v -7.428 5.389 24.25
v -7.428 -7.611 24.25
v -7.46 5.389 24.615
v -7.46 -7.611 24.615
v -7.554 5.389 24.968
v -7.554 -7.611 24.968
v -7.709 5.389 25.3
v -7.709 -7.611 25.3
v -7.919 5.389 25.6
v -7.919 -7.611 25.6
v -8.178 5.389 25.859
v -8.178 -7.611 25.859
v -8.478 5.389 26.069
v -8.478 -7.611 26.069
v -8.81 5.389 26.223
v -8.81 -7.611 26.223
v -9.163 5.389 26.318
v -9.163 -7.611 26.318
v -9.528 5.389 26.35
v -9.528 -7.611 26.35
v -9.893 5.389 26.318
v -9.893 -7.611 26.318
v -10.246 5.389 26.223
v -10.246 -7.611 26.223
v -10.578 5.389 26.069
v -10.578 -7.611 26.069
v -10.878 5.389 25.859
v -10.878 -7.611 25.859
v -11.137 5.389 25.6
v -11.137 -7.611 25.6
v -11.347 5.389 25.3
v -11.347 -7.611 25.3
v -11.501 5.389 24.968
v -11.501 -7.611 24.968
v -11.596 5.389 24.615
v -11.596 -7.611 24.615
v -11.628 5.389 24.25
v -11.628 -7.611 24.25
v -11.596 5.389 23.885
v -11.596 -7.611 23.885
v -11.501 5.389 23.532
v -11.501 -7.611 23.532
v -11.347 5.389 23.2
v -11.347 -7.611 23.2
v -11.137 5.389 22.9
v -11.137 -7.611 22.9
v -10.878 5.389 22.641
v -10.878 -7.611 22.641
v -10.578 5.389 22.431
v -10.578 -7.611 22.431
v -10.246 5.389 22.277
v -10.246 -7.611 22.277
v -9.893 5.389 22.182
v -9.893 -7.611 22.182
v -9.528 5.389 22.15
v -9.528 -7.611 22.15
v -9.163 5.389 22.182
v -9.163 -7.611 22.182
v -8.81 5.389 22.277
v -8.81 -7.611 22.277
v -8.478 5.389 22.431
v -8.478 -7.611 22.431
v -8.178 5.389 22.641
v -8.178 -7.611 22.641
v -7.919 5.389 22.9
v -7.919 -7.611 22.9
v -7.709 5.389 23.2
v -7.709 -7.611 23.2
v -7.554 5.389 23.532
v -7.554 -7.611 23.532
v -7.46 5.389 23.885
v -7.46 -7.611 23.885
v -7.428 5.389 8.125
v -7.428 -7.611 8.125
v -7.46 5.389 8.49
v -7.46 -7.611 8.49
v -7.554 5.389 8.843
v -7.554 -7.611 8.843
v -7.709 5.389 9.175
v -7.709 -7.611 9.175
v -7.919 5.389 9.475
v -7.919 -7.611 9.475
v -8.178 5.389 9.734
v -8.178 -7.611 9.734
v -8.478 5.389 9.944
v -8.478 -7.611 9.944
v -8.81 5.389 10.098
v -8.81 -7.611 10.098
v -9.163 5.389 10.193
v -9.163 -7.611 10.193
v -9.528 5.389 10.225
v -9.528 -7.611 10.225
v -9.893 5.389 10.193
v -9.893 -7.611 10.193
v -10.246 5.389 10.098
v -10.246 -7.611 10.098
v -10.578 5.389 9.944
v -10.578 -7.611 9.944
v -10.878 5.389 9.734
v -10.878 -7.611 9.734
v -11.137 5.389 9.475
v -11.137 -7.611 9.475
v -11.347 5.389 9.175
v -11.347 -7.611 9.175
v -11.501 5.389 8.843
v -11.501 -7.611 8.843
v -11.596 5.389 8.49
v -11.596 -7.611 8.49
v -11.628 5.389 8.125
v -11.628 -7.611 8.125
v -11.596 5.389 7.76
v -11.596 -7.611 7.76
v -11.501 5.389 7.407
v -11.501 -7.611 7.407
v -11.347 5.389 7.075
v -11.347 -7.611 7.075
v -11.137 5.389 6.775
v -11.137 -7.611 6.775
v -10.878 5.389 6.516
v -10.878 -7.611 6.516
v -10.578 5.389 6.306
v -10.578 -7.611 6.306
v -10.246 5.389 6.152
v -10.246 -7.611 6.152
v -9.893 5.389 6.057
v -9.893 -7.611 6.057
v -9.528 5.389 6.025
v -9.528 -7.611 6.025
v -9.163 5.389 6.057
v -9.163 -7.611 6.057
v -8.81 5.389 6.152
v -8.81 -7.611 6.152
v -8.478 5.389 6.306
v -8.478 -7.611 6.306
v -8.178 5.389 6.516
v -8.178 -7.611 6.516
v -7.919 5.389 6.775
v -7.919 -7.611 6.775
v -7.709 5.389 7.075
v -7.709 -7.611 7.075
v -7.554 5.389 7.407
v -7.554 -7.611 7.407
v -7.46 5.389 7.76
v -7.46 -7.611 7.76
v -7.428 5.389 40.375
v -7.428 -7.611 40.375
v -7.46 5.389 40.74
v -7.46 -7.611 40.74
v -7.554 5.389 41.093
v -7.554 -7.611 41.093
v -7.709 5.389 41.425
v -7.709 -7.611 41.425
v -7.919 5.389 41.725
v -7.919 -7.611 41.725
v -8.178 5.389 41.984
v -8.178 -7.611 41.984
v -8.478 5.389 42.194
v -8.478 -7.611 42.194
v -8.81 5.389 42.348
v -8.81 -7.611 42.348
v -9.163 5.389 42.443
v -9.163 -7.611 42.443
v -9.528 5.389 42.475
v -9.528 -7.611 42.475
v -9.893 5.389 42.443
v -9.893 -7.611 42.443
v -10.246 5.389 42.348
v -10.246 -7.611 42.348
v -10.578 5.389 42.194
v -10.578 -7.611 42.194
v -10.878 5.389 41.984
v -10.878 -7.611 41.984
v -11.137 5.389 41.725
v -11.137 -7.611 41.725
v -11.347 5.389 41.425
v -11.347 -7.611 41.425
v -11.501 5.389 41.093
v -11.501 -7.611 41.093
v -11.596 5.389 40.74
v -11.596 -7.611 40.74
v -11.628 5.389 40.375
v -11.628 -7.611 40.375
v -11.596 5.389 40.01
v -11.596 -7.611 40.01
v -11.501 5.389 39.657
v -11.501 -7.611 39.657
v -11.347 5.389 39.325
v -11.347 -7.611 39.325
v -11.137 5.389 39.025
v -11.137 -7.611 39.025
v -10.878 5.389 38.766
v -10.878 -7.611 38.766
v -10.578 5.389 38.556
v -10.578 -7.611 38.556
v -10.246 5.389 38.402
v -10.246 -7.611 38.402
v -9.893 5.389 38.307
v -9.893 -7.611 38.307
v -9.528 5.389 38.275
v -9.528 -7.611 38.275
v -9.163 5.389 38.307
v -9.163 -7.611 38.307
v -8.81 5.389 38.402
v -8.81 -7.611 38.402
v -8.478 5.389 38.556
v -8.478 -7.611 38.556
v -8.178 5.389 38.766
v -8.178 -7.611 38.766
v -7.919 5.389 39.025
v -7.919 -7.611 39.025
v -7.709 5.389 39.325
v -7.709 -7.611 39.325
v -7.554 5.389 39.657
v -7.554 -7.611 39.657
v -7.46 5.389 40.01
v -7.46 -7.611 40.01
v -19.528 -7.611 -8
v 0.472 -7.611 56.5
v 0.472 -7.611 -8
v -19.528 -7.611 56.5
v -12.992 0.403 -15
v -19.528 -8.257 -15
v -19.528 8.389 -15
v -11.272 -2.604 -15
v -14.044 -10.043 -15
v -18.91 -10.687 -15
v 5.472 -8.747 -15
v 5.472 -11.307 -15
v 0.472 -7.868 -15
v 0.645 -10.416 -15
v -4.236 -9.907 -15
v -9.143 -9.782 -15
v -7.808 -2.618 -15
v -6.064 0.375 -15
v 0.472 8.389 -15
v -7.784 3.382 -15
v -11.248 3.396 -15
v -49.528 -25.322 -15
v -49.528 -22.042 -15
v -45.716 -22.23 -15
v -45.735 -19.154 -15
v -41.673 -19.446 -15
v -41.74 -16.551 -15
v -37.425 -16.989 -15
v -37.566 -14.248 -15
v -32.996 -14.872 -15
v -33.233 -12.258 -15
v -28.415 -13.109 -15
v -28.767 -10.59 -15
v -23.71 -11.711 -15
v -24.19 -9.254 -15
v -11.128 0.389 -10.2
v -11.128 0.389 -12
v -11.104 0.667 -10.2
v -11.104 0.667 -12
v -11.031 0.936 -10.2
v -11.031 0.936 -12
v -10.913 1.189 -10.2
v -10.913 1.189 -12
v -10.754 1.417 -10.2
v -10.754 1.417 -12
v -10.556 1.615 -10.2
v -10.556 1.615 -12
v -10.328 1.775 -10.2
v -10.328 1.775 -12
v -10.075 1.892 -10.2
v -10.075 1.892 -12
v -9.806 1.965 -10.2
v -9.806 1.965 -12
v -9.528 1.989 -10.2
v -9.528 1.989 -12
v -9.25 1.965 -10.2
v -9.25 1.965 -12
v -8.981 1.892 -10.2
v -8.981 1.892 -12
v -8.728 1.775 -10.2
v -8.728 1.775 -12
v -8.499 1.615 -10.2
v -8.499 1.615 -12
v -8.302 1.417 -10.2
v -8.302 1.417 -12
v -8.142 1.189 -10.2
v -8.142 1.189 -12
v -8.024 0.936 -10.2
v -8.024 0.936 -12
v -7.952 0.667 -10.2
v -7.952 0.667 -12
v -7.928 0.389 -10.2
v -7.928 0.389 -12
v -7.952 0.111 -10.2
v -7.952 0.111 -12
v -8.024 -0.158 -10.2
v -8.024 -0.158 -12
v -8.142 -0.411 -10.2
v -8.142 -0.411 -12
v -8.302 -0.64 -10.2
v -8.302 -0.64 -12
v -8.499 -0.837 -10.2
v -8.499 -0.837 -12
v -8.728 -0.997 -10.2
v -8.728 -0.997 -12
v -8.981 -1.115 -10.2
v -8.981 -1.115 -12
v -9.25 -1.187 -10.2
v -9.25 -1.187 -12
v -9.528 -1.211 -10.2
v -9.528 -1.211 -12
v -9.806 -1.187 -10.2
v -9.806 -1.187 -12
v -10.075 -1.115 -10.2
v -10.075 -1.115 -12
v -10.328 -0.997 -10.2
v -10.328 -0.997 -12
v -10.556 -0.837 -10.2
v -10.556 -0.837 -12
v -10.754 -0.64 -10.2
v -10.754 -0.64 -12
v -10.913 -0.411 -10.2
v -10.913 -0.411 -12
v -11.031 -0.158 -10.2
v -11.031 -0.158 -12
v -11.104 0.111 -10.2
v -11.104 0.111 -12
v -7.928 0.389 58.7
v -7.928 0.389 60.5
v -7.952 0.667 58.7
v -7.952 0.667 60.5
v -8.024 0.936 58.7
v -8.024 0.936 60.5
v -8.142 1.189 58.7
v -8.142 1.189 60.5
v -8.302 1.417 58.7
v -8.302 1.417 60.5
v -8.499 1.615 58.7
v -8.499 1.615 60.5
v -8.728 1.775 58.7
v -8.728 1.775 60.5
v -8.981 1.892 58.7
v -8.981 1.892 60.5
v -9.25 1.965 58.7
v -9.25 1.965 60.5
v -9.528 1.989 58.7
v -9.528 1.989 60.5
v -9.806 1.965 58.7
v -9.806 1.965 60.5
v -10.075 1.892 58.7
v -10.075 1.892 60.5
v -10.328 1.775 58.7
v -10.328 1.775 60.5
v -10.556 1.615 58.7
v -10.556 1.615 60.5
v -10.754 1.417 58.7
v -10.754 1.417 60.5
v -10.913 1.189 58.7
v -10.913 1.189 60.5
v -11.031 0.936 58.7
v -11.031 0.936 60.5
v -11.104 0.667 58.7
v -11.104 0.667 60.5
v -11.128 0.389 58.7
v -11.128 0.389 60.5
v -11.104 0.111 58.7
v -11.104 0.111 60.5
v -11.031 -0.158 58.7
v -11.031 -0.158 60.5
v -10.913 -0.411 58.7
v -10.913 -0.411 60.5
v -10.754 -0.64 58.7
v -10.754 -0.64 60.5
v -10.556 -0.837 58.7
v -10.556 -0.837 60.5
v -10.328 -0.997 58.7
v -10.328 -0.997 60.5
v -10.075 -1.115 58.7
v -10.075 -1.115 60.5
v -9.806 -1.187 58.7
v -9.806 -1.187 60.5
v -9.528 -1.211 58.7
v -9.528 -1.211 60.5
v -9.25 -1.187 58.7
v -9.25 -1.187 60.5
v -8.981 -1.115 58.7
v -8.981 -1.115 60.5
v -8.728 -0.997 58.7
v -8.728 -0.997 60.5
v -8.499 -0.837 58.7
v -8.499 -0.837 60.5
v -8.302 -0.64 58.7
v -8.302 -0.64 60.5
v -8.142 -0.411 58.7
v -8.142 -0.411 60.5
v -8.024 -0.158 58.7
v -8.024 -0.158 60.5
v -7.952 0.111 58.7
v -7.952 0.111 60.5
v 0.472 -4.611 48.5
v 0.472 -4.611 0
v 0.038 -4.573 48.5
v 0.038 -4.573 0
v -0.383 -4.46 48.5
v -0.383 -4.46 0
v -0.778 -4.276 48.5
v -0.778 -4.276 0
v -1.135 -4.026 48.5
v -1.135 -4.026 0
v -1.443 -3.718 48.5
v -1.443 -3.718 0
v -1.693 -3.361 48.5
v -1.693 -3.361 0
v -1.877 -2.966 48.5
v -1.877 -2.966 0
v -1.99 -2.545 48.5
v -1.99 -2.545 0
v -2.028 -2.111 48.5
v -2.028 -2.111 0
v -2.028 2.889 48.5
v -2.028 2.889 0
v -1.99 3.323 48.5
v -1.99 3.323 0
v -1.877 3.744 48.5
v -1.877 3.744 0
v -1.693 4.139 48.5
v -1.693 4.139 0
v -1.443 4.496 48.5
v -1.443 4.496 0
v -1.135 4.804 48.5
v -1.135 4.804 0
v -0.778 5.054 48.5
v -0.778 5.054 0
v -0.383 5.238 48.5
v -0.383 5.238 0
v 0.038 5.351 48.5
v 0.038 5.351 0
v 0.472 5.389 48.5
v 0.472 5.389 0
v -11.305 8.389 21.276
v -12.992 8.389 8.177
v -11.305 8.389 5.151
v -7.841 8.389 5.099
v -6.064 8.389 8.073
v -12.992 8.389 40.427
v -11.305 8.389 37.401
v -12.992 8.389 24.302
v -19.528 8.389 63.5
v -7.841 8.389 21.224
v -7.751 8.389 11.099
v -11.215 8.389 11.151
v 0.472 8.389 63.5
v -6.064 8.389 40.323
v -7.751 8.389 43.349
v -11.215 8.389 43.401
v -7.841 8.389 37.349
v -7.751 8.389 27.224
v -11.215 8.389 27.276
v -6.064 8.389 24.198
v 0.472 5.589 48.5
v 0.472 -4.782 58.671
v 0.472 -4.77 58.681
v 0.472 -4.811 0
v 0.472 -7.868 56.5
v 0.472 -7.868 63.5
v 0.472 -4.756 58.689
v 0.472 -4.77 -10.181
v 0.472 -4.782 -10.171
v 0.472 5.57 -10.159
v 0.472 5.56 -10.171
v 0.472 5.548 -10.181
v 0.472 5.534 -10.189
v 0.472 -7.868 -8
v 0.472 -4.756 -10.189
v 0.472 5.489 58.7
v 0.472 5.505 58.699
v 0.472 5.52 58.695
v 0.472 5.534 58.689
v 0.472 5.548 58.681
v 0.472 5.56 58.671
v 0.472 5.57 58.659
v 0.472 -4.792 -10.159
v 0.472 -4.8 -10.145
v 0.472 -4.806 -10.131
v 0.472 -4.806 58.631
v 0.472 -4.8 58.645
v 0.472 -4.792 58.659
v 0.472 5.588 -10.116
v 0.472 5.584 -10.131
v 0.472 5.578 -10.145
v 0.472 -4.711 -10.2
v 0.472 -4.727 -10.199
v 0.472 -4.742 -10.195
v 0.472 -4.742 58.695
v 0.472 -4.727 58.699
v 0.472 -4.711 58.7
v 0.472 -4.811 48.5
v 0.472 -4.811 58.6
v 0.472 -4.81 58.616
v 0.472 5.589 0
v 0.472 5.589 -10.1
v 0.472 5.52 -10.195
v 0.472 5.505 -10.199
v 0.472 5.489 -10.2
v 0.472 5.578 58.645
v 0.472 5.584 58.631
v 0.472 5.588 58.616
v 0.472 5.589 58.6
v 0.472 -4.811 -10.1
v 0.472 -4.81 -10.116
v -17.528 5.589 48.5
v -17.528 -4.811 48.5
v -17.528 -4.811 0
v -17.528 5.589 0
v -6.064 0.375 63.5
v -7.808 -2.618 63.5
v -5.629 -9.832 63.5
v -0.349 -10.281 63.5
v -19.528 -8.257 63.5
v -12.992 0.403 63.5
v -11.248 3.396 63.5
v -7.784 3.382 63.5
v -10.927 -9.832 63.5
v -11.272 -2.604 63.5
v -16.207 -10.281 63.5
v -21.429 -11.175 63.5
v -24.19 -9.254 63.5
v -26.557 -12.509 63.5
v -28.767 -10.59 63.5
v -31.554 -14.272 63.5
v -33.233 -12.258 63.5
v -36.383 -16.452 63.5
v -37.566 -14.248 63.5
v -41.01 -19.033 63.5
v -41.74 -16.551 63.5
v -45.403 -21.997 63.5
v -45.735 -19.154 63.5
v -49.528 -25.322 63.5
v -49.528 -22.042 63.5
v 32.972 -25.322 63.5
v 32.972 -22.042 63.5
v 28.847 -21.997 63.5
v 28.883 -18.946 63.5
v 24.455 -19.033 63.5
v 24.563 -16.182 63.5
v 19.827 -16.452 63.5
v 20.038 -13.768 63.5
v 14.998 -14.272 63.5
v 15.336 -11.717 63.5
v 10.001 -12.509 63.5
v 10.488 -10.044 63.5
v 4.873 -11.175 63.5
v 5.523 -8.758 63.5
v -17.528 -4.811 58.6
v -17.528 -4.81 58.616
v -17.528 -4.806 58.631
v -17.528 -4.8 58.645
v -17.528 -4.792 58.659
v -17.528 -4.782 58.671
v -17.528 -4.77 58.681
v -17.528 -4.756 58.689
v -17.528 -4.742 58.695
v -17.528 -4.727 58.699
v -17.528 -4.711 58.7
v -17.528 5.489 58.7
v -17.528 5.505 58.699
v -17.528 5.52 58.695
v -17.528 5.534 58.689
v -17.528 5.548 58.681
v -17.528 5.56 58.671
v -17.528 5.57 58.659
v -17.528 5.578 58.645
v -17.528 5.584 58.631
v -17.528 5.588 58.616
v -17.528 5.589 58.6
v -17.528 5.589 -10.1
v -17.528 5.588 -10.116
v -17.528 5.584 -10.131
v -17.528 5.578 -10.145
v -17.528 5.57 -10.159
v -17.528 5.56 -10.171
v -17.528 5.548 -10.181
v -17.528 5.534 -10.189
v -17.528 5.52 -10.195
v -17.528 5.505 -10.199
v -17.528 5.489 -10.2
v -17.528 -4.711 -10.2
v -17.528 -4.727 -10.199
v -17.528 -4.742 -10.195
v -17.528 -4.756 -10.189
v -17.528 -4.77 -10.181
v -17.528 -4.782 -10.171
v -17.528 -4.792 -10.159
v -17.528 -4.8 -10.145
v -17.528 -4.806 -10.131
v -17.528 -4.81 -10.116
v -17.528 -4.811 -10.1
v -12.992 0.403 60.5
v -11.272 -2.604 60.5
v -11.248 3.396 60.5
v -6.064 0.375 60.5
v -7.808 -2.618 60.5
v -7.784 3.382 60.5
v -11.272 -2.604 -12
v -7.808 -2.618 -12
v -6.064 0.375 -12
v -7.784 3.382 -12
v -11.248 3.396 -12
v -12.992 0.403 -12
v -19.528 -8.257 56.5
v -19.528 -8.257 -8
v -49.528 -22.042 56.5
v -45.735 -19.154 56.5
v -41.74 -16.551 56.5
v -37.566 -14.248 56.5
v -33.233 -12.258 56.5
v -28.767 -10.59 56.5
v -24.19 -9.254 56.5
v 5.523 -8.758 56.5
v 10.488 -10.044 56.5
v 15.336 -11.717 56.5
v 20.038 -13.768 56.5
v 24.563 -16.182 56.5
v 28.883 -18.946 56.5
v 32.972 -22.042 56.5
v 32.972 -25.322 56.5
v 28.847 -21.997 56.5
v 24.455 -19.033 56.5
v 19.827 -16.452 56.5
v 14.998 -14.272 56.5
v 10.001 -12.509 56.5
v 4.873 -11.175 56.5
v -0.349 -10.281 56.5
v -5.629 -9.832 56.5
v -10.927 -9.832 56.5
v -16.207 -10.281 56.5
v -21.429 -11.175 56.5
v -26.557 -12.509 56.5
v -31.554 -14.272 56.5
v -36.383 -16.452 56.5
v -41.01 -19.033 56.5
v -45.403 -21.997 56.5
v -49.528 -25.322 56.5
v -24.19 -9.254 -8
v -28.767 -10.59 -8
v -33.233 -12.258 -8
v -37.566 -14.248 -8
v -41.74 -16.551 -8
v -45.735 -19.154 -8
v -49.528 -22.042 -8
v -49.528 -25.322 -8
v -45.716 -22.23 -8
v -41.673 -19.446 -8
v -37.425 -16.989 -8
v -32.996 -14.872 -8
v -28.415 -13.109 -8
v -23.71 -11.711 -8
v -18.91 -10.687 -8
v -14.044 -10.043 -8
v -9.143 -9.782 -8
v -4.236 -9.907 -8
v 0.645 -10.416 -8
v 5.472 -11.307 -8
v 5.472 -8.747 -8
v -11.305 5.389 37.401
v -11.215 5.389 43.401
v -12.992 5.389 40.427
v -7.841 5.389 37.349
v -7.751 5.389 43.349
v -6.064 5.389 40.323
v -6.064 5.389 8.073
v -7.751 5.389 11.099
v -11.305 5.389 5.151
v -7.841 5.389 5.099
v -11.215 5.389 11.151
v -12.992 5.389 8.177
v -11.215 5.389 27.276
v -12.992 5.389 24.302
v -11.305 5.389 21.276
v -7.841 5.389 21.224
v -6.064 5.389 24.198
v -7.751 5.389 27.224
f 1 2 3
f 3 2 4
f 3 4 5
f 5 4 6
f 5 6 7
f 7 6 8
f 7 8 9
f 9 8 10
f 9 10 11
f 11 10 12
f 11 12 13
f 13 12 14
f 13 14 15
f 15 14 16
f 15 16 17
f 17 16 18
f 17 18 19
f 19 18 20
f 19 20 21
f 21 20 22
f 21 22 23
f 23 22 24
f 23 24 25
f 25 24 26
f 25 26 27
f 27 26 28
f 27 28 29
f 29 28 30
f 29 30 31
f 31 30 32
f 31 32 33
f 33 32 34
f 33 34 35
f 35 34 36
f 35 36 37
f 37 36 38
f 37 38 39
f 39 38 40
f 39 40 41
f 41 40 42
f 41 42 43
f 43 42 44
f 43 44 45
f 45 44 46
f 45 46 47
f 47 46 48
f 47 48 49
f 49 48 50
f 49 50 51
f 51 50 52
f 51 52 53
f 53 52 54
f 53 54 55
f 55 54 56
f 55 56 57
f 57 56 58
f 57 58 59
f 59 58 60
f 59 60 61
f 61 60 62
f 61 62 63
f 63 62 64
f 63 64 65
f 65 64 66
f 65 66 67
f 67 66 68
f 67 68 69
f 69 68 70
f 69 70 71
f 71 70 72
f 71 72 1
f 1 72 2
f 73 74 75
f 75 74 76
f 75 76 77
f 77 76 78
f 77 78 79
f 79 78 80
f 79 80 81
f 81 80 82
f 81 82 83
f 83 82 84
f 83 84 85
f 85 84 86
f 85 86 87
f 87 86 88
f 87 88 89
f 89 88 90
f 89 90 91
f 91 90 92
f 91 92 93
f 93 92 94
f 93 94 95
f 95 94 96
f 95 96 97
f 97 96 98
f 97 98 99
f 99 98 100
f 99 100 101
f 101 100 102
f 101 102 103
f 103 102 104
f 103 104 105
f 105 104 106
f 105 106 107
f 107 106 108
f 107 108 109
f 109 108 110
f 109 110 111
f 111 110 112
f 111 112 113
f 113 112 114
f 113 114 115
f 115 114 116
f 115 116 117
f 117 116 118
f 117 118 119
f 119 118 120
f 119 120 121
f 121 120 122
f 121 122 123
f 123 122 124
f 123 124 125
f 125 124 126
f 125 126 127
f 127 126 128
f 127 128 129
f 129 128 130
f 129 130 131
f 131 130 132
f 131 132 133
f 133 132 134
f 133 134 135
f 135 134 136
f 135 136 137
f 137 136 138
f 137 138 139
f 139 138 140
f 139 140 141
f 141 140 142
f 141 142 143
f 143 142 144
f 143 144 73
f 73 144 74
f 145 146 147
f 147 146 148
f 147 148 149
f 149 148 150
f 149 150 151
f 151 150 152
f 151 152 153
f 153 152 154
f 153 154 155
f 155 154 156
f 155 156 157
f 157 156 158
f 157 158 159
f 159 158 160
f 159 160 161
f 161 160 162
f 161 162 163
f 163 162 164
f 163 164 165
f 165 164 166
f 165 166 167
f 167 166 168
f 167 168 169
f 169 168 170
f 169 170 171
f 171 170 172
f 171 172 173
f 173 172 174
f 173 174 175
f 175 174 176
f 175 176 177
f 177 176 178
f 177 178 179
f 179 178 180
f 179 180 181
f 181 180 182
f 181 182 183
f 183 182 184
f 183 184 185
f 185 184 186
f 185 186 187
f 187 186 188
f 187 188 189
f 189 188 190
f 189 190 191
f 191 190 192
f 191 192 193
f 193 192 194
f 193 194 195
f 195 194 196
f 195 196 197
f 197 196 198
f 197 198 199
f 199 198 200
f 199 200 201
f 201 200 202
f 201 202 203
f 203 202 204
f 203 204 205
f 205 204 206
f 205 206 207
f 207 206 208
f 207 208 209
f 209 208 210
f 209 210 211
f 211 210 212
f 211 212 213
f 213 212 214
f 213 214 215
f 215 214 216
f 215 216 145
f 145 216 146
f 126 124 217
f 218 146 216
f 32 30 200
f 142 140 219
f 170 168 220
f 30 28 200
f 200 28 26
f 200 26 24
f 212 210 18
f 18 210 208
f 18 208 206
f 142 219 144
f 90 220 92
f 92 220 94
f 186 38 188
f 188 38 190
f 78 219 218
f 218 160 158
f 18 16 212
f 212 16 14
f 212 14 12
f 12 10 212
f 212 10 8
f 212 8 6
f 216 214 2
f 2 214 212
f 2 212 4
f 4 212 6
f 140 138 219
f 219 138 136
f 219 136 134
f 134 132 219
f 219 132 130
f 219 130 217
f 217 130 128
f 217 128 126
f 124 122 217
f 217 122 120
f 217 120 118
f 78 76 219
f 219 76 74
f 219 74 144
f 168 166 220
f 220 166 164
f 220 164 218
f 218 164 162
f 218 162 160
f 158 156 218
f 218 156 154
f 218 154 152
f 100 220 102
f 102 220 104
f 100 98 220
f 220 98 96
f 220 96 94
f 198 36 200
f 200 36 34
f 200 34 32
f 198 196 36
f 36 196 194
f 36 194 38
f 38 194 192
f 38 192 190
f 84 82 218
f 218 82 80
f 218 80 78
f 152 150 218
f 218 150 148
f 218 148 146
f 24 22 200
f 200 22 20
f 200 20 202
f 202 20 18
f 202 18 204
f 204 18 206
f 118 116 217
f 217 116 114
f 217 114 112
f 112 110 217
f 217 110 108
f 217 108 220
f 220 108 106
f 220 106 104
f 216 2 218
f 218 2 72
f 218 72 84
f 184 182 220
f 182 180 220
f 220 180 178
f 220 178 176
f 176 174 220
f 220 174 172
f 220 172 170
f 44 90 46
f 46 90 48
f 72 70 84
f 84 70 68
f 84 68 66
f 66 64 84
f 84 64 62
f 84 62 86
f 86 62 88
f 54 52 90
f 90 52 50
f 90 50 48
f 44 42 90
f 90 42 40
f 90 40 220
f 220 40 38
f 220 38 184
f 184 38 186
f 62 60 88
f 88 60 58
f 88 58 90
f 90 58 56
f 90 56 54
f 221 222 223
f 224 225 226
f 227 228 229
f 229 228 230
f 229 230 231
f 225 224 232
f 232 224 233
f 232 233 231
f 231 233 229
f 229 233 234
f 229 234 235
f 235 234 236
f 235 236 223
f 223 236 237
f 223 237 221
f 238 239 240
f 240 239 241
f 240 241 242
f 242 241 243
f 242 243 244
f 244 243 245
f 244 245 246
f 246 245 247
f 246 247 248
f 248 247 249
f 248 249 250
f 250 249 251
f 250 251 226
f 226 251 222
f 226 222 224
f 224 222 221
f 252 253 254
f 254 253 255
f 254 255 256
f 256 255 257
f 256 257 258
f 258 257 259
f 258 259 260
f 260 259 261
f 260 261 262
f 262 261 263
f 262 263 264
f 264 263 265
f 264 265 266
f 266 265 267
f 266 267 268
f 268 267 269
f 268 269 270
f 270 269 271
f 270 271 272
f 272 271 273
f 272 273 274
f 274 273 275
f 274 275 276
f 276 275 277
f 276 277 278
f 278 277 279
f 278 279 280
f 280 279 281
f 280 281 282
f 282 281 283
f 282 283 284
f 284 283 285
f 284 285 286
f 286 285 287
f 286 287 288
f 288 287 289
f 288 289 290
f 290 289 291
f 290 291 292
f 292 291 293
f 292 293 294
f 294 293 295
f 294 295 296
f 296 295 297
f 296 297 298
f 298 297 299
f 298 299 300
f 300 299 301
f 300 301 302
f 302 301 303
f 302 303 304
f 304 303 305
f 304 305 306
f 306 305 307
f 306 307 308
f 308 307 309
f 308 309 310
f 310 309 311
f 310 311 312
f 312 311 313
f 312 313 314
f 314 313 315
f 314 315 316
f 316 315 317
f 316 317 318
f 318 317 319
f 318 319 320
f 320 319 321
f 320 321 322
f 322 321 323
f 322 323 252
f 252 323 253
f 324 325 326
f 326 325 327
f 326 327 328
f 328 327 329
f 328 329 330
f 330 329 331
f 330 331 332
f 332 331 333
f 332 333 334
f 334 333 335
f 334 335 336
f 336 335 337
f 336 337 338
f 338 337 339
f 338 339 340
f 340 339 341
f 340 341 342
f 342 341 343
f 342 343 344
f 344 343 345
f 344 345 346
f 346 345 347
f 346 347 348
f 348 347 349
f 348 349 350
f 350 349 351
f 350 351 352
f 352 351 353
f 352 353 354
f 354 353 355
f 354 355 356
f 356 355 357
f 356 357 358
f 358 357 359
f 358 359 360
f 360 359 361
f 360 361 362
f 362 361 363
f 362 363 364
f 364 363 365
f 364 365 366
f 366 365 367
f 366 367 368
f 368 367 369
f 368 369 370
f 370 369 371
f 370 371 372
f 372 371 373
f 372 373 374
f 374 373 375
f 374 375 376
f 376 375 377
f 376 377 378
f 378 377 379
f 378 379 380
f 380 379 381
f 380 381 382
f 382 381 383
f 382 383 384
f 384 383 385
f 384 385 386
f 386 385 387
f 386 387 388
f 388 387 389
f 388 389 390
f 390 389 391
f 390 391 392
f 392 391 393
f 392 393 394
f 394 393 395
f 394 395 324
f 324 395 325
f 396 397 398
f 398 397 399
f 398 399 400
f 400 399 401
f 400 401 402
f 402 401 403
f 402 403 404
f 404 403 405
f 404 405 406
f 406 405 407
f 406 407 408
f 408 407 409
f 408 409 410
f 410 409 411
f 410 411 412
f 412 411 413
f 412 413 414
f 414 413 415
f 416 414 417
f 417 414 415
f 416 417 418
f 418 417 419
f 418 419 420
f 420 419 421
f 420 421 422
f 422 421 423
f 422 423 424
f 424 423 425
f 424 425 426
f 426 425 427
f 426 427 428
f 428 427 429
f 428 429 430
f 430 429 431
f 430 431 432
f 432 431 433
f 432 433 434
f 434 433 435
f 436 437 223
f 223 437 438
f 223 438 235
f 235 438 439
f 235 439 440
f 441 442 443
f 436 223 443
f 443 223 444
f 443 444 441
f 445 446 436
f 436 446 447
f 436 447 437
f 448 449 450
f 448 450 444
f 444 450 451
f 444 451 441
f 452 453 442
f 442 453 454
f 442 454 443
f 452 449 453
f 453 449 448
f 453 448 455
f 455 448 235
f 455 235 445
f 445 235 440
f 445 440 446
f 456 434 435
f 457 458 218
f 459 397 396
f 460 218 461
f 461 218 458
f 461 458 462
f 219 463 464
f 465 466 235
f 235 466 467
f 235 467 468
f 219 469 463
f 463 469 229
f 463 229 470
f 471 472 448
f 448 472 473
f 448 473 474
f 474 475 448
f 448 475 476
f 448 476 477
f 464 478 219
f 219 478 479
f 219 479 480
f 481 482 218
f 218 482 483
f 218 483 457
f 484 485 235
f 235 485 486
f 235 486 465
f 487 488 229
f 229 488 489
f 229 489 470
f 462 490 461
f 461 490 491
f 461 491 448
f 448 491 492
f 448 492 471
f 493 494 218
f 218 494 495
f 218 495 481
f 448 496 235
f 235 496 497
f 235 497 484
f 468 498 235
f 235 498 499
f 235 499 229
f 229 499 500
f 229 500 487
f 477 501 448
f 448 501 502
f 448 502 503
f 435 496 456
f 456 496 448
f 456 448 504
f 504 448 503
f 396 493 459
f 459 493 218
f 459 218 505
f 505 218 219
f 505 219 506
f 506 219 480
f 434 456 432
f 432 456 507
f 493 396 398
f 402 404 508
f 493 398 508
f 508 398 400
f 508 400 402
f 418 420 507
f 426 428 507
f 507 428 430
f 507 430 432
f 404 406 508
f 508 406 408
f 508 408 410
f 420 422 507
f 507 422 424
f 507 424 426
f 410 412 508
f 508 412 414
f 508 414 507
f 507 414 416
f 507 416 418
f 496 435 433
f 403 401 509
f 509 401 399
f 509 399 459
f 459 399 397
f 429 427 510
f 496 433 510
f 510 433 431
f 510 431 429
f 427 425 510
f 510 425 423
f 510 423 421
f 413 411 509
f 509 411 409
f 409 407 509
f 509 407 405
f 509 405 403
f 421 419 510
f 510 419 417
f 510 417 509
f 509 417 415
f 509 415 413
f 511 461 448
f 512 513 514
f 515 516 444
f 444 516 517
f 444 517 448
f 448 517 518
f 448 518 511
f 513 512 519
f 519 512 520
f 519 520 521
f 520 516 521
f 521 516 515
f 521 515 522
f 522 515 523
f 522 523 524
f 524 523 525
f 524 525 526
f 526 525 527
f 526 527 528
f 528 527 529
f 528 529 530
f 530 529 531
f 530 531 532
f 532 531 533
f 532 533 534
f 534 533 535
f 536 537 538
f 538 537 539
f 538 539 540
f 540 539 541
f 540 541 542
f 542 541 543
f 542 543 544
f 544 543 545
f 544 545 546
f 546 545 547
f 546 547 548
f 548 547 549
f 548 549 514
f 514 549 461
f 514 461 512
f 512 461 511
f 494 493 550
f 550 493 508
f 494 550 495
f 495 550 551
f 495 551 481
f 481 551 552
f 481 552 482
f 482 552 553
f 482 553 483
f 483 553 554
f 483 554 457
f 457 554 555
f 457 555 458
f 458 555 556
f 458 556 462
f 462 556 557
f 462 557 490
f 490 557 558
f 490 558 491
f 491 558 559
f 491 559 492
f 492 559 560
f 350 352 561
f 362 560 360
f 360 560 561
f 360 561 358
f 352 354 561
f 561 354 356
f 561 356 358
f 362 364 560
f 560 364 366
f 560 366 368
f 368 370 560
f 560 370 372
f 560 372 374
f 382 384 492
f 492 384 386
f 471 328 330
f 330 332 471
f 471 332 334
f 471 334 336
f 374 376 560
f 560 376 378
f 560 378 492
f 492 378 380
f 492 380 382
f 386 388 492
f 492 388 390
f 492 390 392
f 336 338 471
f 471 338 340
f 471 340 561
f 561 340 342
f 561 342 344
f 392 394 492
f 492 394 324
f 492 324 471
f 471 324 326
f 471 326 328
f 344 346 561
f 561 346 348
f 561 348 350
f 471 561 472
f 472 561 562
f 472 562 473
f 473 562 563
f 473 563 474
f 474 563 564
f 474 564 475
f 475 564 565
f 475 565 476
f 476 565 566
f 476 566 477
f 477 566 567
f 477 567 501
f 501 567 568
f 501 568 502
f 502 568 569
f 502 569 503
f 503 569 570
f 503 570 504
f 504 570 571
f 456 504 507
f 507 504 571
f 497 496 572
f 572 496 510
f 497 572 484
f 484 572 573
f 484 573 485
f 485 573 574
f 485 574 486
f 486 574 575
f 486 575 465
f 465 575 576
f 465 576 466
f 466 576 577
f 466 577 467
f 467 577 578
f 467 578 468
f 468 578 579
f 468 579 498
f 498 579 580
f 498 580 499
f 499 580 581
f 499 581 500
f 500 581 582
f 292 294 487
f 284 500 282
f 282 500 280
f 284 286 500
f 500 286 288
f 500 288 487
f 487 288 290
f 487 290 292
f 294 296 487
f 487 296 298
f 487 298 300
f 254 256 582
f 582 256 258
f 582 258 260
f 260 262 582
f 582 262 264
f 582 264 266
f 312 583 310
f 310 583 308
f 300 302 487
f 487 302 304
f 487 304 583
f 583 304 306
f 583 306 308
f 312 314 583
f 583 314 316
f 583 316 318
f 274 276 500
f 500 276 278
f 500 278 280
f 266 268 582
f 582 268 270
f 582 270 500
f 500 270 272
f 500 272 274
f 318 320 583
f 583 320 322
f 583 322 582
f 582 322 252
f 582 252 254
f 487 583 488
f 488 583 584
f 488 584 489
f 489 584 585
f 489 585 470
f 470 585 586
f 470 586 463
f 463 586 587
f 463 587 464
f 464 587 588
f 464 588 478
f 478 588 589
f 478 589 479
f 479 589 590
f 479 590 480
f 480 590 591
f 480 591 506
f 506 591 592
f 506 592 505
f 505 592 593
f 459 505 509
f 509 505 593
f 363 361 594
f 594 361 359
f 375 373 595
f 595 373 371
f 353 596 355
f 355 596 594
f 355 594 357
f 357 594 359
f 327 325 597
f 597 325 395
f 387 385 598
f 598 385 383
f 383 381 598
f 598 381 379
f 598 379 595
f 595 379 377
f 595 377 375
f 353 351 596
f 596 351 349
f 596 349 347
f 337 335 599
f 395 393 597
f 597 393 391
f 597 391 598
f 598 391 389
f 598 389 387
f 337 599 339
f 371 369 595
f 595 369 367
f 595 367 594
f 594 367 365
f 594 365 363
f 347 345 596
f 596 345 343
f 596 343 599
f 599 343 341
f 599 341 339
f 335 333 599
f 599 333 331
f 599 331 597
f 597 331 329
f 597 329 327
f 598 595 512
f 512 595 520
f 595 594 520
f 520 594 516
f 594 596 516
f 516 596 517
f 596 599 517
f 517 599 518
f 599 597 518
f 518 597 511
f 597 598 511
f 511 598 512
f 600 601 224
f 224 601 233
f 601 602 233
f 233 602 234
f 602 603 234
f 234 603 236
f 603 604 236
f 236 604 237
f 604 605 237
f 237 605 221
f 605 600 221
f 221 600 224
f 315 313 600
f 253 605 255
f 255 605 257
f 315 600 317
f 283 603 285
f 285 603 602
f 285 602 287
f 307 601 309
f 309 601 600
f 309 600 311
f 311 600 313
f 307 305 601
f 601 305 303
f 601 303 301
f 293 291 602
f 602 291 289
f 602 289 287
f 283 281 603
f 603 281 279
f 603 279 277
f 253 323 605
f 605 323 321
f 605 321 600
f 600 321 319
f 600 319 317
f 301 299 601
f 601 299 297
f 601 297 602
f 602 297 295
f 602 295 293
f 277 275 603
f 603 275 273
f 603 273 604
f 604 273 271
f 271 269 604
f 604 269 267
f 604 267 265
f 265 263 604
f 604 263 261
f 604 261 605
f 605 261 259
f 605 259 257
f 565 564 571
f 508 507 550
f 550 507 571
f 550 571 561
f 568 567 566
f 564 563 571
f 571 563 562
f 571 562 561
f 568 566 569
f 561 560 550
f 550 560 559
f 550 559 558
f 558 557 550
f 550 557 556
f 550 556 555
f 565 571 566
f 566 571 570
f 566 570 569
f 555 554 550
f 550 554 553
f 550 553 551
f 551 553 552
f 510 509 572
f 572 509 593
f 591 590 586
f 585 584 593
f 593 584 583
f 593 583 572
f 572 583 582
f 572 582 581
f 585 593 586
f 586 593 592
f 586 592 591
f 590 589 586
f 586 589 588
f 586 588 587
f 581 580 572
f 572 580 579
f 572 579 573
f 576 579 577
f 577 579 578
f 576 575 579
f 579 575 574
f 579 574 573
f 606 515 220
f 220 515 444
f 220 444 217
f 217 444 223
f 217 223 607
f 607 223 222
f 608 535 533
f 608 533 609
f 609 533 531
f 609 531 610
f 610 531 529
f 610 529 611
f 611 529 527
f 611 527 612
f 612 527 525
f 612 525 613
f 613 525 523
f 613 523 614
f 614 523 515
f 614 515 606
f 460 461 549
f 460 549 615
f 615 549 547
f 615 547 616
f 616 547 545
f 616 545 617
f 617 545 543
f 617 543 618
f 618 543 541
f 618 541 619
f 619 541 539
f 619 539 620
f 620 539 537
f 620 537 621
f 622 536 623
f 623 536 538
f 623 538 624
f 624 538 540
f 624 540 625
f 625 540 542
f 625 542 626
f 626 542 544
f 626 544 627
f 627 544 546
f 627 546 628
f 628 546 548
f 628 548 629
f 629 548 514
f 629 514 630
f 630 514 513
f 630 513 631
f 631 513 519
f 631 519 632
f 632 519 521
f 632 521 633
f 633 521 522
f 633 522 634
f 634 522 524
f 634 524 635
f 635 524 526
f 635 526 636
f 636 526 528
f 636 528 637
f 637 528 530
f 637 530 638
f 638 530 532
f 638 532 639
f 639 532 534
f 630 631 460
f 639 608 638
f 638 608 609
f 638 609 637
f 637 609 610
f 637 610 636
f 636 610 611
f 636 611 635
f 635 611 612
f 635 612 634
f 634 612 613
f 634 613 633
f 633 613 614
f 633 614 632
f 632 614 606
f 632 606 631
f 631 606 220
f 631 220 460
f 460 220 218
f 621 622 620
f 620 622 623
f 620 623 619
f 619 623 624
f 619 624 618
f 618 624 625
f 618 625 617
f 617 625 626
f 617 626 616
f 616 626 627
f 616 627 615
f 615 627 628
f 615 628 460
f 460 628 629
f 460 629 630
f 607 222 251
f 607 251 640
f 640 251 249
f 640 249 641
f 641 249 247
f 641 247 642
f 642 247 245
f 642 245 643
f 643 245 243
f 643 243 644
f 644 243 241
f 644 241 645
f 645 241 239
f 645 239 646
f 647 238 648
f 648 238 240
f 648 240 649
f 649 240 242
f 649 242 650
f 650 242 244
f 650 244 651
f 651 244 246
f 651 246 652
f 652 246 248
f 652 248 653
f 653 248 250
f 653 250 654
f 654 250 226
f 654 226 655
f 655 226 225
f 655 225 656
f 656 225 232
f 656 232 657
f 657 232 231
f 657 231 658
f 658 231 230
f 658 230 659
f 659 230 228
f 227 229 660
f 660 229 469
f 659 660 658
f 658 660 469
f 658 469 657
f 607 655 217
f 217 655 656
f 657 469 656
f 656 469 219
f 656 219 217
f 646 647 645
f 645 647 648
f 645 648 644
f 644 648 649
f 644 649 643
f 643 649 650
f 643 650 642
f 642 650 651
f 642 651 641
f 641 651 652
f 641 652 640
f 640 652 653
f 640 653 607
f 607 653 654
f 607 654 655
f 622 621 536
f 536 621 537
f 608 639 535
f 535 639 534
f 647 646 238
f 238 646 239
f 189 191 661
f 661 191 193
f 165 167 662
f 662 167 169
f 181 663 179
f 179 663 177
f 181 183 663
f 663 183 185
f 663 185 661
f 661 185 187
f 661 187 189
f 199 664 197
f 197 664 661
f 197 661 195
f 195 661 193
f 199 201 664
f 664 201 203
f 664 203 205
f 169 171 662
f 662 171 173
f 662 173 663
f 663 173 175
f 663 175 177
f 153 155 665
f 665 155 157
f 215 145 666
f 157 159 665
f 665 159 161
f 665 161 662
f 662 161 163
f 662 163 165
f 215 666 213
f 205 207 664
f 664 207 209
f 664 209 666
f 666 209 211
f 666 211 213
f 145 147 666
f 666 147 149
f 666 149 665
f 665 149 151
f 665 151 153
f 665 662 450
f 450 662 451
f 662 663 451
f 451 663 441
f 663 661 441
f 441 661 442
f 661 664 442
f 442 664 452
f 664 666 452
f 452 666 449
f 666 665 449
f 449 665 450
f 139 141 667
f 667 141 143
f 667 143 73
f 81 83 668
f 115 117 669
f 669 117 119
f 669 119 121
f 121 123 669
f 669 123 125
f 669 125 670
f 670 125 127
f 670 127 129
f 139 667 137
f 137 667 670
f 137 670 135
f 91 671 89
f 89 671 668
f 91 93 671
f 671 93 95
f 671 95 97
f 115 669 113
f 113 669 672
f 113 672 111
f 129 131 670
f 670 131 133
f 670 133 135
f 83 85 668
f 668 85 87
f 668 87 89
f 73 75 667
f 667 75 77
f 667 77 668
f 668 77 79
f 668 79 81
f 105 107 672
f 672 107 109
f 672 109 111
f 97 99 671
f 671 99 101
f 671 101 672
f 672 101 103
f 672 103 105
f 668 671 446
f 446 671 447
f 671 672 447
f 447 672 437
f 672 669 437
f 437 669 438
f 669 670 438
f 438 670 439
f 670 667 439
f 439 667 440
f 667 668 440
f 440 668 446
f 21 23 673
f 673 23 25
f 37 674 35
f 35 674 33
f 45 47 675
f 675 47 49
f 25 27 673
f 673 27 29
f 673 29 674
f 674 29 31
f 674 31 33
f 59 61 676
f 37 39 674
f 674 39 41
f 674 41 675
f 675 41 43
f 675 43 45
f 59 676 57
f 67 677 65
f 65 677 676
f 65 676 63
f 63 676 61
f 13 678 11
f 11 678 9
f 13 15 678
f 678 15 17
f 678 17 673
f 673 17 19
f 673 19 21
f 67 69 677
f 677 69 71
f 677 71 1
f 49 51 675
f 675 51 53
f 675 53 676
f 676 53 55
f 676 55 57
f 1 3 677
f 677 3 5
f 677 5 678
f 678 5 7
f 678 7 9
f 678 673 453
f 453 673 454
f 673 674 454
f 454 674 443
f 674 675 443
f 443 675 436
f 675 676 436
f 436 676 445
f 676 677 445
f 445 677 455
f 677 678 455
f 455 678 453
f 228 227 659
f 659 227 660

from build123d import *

# Parameters (mm, degrees)
BOSS_EXTRUDE2_DEPTH = 48.5
BOSS_EXTRUDE3_DEPTH = 18
SKETCH3_R           = 1.6
CUT_EXTRUDE1_DEPTH  = 8
CUT_EXTRUDE3_DEPTH  = 3
SKETCH5_W           = 78.5
SKETCH5_H           = 16
BOSS_EXTRUDE4_DEPTH = 2
BOSS_EXTRUDE5_DEPTH = 7
BOSS_EXTRUDE6_DEPTH = 7
SKETCH10_R          = 2.1
CUT_EXTRUDE4_DEPTH  = 17
CUT_EXTRUDE5_DEPTH  = 3
CUT_EXTRUDE6_DEPTH  = 8


with BuildPart() as part:
    # Sketch1 → Boss-Extrude2 (new body)
    with BuildSketch(Plane.XY):
        with BuildLine():
            ThreePointArc((-2.027849528, -2.111075236), (-1.295616481, -3.878842189), (0.472150472, -4.611075236))
            Line((0.472150472, -4.611075236), (0.472150472, -7.611075236))
            Line((0.472150472, -7.611075236), (-17.527849528, -7.611075236))
            Line((-17.527849528, -7.611075236), (-17.527849528, 8.388924764))
            Line((-17.527849528, 8.388924764), (0.472150472, 8.388924764))
            Line((0.472150472, 8.388924764), (0.472150472, 5.388924764))
            ThreePointArc((0.472150472, 5.388924764), (-1.295616481, 4.656691717), (-2.027849528, 2.888924764))
            Line((-2.027849528, 2.888924764), (-2.027849528, -2.111075236))
        make_face()
    extrude(amount=BOSS_EXTRUDE2_DEPTH)

    # Sketch2 → Boss-Extrude3 (add)
    with BuildSketch(Plane.ZY.offset(17.527849528)):
        with BuildLine():
            Line((48.5, 8.388924764), (62.5, 8.388924764))
            Line((62.5, 8.388924764), (63.5, 8.388924764))
            Line((63.5, 8.388924764), (63.5, 7.388924764))
            Line((63.5, 7.388924764), (63.5, -6.611075236))
            Line((63.5, -6.611075236), (63.5, -7.611075236))
            Line((63.5, -7.611075236), (62.5, -7.611075236))
            Line((62.5, -7.611075236), (48.5, -7.611075236))
            Line((48.5, -7.611075236), (48.5, -4.811075236))
            Line((48.5, -4.811075236), (58.6, -4.811075236))
            ThreePointArc((58.6, -4.811075236), (58.670710678, -4.781785914), (58.7, -4.711075236))
            Line((58.7, -4.711075236), (58.7, 5.488924764))
            ThreePointArc((58.7, 5.488924764), (58.670710678, 5.559635442), (58.6, 5.588924764))
            Line((58.6, 5.588924764), (48.5, 5.588924764))
            Line((48.5, 5.588924764), (48.5, 8.388924764))
        make_face()
        with BuildLine():
            Line((0, -4.811075236), (0, -7.611075236))
            Line((0, -7.611075236), (-14, -7.611075236))
            Line((-14, -7.611075236), (-15, -7.611075236))
            Line((-15, -7.611075236), (-15, -6.611075236))
            Line((-15, -6.611075236), (-15, 7.388924764))
            Line((-15, 7.388924764), (-15, 8.388924764))
            Line((-15, 8.388924764), (-14, 8.388924764))
            Line((-14, 8.388924764), (0, 8.388924764))
            Line((0, 8.388924764), (0, 5.588924764))
            Line((0, 5.588924764), (-10.1, 5.588924764))
            ThreePointArc((-10.1, 5.588924764), (-10.170710678, 5.559635442), (-10.2, 5.488924764))
            Line((-10.2, 5.488924764), (-10.2, -4.711075236))
            ThreePointArc((-10.2, -4.711075236), (-10.170710678, -4.781785914), (-10.1, -4.811075236))
            Line((-10.1, -4.811075236), (0, -4.811075236))
        make_face()
    extrude(amount=-BOSS_EXTRUDE3_DEPTH)

    # Sketch3 → Cut-Extrude1 (cut)
    with BuildSketch(Plane.XY.offset(63.5)):
        with Locations((-9.527849528, 0.388924764)):
            Circle(SKETCH3_R)
    cut_extrude1 = extrude(amount=-CUT_EXTRUDE1_DEPTH, mode=Mode.SUBTRACT)

    # Mirror1: Cut-Extrude1 across plane
    add(cut_extrude1.mirror(Plane.XY.offset(24.25)), mode=Mode.SUBTRACT)

    # Sketch4 → Cut-Extrude3 (cut)
    with BuildSketch(Plane.XY.offset(63.5)):
        Polygon((-7.807950928, -2.618058576), (-6.063776267, 0.374908974), (-7.783674867, 3.381892314), (-11.247748128, 3.395908104), (-12.991922789, 0.402940554), (-11.272024189, -2.604042786), align=None)
    cut_extrude3 = extrude(amount=-CUT_EXTRUDE3_DEPTH, mode=Mode.SUBTRACT)

    # Mirror2: Cut-Extrude3 across plane
    add(cut_extrude3.mirror(Plane.XY.offset(24.25)), mode=Mode.SUBTRACT)

    # Sketch5 → Boss-Extrude4 (add)
    with BuildSketch(Plane.ZY.offset(17.527849528)):
        with Locations((24.25, 0.388924764)):
            Rectangle(SKETCH5_W, SKETCH5_H)
    extrude(amount=BOSS_EXTRUDE4_DEPTH)

    # Sketch6 → Boss-Extrude5 (add)
    with BuildSketch(Plane.XY.offset(63.5)):
        with BuildLine():
            Line((-19.527849528, -7.611075236), (-19.527849528, -8.257098609))
            ThreePointArc((-19.527849528, -8.257098609), (-29.816107458, -10.948302934), (-39.527849528, -15.28107317))
            Line((-39.527849528, -15.28107317), (-39.527849528, -18.149551009))
            ThreePointArc((-39.527849528, -18.149551009), (-8.277849528, -9.776138745), (22.972150472, -18.149551009))
            Line((22.972150472, -18.149551009), (22.972150472, -15.28107317))
            ThreePointArc((22.972150472, -15.28107317), (12.062731895, -10.540729559), (0.472150472, -7.867773606))
            Line((0.472150472, -7.867773606), (0.472150472, -7.611075236))
            Line((0.472150472, -7.611075236), (-19.527849528, -7.611075236))
        make_face()
    boss_extrude5 = extrude(amount=-BOSS_EXTRUDE5_DEPTH)

    # Mirror3: Boss-Extrude5 across plane
    add(boss_extrude5.mirror(Plane.XY.offset(24.25)))

    # Sketch7 → Boss-Extrude6 (add)
    with BuildSketch(Plane.XY.offset(63.5)):
        with BuildLine():
            Line((22.972150472, -18.149551009), (22.972150472, -15.28107317))
            ThreePointArc((22.972150472, -15.28107317), (28.129444831, -18.429050454), (32.972150472, -22.042310502))
            Line((32.972150472, -22.042310502), (32.972150472, -25.322038818))
            ThreePointArc((32.972150472, -25.322038818), (28.149113636, -21.489069971), (22.972150472, -18.149551009))
        make_face()
        with BuildLine():
            Line((-39.527849528, -15.28107317), (-39.527849528, -18.149551009))
            ThreePointArc((-39.527849528, -18.149551009), (-44.704812692, -21.489069971), (-49.527849528, -25.322038818))
            Line((-49.527849528, -25.322038818), (-49.527849528, -22.042310502))
            ThreePointArc((-49.527849528, -22.042310502), (-44.685143887, -18.429050454), (-39.527849528, -15.28107317))
        make_face()
    boss_extrude6 = extrude(amount=-BOSS_EXTRUDE6_DEPTH)

    # Mirror4: Boss-Extrude6 across plane
    add(boss_extrude6.mirror(Plane.XY.offset(24.25)))

    # Sketch10 → Cut-Extrude4 (cut, through all)
    with BuildSketch(Plane.XZ.offset(7.611075236)):
        with Locations((-9.527849528, 40.375)):
            Circle(SKETCH10_R)
        with Locations((-9.527849528, 8.125)):
            Circle(SKETCH10_R)
        with Locations((-9.527849528, 24.25)):
            Circle(SKETCH10_R)
    extrude(amount=-CUT_EXTRUDE4_DEPTH, mode=Mode.SUBTRACT)

    # Sketch11 → Cut-Extrude5 (cut)
    with BuildSketch(Plane(origin=(0, 8.388924764, 0), x_dir=(1, 0, 0), z_dir=(0, 1, 0))):
        Polygon((-7.751015125, -27.223694588), (-6.06413727, -24.198063563), (-7.840971673, -21.224368975), (-11.304683931, -21.276305412), (-12.991561786, -24.301936437), (-11.214727383, -27.275631025), align=None)
        Polygon((-7.751015125, -11.098694588), (-6.06413727, -8.073063563), (-7.840971673, -5.099368975), (-11.304683931, -5.151305412), (-12.991561786, -8.176936437), (-11.214727383, -11.150631025), align=None)
        Polygon((-7.751015125, -43.348694588), (-6.06413727, -40.323063563), (-7.840971673, -37.349368975), (-11.304683931, -37.401305412), (-12.991561786, -40.426936437), (-11.214727383, -43.400631025), align=None)
    extrude(amount=-CUT_EXTRUDE5_DEPTH, mode=Mode.SUBTRACT)

    # Sketch12 → Cut-Extrude6 (cut, through all)
    with BuildSketch(Plane.XY.offset(-8)):
        with BuildLine():
            Line((5.472150472, -8.747109948), (5.472150472, -11.307396754))
            ThreePointArc((5.472150472, -11.307396754), (20.100884553, -16.590436344), (32.972150472, -25.322038818))
            Line((32.972150472, -25.322038818), (32.972150472, -22.042310502))
            ThreePointArc((32.972150472, -22.042310502), (20.014209242, -13.756403523), (5.472150472, -8.747109948))
        make_face()
    extrude(amount=-CUT_EXTRUDE6_DEPTH, mode=Mode.SUBTRACT)


solid = part.part
